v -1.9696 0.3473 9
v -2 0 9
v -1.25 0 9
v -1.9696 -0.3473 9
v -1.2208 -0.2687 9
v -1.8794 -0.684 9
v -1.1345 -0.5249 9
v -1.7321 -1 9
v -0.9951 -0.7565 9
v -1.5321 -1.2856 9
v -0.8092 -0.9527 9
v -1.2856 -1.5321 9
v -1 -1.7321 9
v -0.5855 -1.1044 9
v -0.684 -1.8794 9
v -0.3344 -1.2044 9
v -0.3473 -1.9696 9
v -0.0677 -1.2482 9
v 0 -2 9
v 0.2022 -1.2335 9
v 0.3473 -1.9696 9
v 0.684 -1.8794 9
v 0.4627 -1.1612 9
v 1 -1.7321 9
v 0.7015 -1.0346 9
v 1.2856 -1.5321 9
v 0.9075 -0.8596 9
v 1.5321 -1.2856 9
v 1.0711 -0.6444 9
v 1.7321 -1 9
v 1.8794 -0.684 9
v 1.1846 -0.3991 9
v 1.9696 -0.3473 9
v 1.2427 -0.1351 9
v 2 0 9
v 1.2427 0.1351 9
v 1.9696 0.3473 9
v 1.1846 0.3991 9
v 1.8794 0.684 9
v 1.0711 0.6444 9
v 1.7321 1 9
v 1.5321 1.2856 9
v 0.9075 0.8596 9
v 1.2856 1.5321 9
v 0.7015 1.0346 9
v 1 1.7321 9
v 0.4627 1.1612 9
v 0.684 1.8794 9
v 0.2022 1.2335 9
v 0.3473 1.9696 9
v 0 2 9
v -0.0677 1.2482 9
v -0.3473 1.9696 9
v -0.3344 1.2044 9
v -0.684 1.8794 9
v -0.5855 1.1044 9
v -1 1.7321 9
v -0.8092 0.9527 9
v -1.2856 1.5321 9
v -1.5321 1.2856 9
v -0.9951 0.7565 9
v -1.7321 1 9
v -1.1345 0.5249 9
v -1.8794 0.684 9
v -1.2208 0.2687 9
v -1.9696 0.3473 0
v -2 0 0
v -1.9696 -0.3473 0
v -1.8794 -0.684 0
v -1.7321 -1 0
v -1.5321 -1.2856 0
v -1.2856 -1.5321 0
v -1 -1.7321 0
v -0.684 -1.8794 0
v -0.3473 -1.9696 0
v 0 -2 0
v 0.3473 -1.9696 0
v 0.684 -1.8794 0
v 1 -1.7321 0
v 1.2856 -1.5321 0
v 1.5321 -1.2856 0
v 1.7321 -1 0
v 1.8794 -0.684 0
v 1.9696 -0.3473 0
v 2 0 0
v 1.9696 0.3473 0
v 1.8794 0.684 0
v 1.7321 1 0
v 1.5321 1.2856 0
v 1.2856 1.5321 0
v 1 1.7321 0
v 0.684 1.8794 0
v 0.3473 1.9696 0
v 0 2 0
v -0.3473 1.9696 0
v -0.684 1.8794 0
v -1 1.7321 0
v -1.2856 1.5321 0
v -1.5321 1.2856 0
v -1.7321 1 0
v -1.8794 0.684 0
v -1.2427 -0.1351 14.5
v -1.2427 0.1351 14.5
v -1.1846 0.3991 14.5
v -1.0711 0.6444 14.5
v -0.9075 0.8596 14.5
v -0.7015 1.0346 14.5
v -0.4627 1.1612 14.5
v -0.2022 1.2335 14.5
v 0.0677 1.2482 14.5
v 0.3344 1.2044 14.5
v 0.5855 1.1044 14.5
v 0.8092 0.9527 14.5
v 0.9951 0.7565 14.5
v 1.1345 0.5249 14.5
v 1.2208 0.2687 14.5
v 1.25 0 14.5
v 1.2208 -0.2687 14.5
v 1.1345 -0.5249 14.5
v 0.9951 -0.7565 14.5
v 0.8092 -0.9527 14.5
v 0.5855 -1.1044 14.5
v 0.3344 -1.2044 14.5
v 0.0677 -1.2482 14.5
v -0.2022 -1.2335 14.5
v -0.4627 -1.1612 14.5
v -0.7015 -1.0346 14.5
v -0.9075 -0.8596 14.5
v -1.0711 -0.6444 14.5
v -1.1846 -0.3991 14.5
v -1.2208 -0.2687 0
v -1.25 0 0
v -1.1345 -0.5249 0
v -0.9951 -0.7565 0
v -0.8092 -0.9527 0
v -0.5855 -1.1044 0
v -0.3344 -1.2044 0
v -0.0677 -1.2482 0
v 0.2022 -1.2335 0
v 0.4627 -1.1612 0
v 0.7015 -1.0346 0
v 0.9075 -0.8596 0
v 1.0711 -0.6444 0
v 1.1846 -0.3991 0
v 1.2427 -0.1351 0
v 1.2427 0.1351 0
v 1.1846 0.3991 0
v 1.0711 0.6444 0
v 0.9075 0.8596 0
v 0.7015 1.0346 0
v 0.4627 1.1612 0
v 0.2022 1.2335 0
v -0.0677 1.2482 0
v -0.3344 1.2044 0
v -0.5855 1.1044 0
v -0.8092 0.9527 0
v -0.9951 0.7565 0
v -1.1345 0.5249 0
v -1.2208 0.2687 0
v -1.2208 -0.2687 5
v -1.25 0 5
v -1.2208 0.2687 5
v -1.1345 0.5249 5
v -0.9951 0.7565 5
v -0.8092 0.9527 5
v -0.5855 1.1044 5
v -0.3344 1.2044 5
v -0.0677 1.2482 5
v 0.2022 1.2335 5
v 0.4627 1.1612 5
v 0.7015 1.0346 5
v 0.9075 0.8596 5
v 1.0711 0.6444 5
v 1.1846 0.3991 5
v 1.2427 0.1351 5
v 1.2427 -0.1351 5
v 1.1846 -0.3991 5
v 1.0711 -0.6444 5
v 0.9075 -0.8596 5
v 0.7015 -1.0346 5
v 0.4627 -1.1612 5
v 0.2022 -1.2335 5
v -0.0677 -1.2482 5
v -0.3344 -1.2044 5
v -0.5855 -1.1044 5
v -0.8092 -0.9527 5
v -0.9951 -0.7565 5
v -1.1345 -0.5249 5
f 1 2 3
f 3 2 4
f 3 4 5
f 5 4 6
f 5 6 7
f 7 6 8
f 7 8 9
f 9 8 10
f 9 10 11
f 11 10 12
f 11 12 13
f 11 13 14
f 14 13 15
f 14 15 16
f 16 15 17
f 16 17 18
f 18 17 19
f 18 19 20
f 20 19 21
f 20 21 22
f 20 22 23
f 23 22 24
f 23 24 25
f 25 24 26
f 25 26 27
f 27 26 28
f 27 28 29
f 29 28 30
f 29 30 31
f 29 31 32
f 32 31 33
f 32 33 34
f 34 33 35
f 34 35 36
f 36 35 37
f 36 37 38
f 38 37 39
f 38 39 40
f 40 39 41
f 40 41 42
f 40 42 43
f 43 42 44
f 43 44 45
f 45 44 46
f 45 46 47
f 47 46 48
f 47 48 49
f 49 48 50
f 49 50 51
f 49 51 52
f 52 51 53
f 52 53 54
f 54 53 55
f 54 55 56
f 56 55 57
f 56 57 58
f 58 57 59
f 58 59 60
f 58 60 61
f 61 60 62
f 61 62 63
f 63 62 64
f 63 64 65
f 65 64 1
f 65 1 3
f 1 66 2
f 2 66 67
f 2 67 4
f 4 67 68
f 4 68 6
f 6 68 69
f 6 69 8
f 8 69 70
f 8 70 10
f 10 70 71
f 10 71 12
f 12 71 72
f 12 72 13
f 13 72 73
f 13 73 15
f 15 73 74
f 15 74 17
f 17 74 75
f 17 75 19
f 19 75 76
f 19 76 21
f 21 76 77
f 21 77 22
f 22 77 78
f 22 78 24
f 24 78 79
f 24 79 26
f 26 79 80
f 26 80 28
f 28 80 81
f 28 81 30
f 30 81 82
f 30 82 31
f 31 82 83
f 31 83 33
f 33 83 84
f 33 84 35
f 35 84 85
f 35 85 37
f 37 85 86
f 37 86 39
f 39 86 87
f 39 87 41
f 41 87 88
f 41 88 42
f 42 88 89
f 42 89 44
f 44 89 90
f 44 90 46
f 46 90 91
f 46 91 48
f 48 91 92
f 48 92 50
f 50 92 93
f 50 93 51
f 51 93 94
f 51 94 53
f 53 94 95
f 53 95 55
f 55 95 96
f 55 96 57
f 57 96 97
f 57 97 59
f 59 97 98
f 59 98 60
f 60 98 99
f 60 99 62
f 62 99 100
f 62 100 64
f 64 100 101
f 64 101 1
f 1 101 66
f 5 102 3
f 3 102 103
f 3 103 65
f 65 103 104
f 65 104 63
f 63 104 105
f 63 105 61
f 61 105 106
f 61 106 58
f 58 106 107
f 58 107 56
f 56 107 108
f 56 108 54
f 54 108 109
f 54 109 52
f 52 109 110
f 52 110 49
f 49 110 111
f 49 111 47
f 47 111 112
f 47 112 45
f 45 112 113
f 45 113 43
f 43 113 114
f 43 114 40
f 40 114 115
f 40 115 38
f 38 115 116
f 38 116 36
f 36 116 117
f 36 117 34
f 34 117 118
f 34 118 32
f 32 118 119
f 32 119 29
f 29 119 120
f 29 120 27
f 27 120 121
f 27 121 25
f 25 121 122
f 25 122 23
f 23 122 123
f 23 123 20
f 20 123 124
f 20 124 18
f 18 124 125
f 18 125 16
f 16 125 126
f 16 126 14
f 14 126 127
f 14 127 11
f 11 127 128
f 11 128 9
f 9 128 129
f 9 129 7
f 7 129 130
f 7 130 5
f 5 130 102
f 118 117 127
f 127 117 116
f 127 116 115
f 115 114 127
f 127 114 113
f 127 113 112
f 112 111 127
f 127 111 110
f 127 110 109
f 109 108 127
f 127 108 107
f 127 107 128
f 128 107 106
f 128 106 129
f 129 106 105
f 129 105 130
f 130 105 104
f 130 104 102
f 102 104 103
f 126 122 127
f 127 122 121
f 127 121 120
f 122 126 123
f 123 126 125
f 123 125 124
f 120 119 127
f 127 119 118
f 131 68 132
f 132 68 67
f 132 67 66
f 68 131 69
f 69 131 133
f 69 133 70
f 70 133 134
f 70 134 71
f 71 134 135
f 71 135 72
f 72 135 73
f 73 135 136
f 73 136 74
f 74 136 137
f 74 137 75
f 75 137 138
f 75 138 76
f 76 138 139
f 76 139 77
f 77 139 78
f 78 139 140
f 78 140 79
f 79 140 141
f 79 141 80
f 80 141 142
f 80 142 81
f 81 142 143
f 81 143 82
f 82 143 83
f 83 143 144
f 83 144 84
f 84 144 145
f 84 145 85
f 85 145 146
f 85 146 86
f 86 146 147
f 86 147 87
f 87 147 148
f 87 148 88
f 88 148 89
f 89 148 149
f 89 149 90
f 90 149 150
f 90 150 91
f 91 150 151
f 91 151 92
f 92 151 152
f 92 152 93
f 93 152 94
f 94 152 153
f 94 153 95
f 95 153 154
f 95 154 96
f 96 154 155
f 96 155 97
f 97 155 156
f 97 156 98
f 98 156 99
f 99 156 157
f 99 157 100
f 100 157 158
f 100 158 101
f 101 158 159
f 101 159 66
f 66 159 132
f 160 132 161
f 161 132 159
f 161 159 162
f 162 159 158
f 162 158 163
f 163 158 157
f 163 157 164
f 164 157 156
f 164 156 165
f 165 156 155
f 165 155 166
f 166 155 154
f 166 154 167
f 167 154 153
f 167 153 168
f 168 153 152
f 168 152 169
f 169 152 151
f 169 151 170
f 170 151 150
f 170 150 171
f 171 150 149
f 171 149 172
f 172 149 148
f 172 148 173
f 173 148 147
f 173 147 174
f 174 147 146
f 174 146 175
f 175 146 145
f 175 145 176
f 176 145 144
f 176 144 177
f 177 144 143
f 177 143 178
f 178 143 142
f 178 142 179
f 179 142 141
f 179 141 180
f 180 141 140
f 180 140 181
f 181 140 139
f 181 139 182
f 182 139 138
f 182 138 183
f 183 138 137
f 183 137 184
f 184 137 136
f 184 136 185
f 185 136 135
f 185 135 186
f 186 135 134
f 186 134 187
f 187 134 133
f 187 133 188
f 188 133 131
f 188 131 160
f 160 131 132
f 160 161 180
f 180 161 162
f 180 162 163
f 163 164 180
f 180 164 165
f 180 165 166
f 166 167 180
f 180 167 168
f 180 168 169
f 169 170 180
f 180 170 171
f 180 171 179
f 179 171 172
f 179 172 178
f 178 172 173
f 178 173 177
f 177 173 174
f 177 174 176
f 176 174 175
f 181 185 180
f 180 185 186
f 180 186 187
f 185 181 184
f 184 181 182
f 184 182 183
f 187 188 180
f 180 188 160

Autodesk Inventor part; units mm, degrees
ref_plane "YZ Plane" through (0, 0, 0) normal (1, 0, 0) x (0, 1, 0)
ref_plane "XZ Plane" through (0, 0, 0) normal (0, 1, 0) x (-1, 0, 0)
ref_plane "XY Plane" through (0, 0, 0) normal (0, 0, 1) x (1, 0, 0)
sketch "Sketch1" plane through (0, 0, 0) normal (0, 0, 1) x (1, 0, 0)
  circle A0 centre (0, 0) radius 1.25
  dimension "d0" = 2.5
extrude "Extrusion1" add sketch "Sketch1" along normal blind 14.5
sketch "Sketch3" plane through (0, 0, 0) normal (0, 0, -1) x (-1, 0, 0)
  circle A0 centre (0, 0) radius 2
  dimension "d6" = 4
extrude "Extrusion3" add sketch "Sketch3" against normal blind 9
sketch "Sketch4" plane through (0, 0, 0) normal (0, 0, -1) x (-1, 0, 0)
  circle A0 centre (0, 0) radius 1.25 projected
  circle A1 centre (0, 0) radius 1.25
extrude "Extrusion4" cut sketch "Sketch4" against normal blind 5
properties part number "cannula_with_hole_v01"
